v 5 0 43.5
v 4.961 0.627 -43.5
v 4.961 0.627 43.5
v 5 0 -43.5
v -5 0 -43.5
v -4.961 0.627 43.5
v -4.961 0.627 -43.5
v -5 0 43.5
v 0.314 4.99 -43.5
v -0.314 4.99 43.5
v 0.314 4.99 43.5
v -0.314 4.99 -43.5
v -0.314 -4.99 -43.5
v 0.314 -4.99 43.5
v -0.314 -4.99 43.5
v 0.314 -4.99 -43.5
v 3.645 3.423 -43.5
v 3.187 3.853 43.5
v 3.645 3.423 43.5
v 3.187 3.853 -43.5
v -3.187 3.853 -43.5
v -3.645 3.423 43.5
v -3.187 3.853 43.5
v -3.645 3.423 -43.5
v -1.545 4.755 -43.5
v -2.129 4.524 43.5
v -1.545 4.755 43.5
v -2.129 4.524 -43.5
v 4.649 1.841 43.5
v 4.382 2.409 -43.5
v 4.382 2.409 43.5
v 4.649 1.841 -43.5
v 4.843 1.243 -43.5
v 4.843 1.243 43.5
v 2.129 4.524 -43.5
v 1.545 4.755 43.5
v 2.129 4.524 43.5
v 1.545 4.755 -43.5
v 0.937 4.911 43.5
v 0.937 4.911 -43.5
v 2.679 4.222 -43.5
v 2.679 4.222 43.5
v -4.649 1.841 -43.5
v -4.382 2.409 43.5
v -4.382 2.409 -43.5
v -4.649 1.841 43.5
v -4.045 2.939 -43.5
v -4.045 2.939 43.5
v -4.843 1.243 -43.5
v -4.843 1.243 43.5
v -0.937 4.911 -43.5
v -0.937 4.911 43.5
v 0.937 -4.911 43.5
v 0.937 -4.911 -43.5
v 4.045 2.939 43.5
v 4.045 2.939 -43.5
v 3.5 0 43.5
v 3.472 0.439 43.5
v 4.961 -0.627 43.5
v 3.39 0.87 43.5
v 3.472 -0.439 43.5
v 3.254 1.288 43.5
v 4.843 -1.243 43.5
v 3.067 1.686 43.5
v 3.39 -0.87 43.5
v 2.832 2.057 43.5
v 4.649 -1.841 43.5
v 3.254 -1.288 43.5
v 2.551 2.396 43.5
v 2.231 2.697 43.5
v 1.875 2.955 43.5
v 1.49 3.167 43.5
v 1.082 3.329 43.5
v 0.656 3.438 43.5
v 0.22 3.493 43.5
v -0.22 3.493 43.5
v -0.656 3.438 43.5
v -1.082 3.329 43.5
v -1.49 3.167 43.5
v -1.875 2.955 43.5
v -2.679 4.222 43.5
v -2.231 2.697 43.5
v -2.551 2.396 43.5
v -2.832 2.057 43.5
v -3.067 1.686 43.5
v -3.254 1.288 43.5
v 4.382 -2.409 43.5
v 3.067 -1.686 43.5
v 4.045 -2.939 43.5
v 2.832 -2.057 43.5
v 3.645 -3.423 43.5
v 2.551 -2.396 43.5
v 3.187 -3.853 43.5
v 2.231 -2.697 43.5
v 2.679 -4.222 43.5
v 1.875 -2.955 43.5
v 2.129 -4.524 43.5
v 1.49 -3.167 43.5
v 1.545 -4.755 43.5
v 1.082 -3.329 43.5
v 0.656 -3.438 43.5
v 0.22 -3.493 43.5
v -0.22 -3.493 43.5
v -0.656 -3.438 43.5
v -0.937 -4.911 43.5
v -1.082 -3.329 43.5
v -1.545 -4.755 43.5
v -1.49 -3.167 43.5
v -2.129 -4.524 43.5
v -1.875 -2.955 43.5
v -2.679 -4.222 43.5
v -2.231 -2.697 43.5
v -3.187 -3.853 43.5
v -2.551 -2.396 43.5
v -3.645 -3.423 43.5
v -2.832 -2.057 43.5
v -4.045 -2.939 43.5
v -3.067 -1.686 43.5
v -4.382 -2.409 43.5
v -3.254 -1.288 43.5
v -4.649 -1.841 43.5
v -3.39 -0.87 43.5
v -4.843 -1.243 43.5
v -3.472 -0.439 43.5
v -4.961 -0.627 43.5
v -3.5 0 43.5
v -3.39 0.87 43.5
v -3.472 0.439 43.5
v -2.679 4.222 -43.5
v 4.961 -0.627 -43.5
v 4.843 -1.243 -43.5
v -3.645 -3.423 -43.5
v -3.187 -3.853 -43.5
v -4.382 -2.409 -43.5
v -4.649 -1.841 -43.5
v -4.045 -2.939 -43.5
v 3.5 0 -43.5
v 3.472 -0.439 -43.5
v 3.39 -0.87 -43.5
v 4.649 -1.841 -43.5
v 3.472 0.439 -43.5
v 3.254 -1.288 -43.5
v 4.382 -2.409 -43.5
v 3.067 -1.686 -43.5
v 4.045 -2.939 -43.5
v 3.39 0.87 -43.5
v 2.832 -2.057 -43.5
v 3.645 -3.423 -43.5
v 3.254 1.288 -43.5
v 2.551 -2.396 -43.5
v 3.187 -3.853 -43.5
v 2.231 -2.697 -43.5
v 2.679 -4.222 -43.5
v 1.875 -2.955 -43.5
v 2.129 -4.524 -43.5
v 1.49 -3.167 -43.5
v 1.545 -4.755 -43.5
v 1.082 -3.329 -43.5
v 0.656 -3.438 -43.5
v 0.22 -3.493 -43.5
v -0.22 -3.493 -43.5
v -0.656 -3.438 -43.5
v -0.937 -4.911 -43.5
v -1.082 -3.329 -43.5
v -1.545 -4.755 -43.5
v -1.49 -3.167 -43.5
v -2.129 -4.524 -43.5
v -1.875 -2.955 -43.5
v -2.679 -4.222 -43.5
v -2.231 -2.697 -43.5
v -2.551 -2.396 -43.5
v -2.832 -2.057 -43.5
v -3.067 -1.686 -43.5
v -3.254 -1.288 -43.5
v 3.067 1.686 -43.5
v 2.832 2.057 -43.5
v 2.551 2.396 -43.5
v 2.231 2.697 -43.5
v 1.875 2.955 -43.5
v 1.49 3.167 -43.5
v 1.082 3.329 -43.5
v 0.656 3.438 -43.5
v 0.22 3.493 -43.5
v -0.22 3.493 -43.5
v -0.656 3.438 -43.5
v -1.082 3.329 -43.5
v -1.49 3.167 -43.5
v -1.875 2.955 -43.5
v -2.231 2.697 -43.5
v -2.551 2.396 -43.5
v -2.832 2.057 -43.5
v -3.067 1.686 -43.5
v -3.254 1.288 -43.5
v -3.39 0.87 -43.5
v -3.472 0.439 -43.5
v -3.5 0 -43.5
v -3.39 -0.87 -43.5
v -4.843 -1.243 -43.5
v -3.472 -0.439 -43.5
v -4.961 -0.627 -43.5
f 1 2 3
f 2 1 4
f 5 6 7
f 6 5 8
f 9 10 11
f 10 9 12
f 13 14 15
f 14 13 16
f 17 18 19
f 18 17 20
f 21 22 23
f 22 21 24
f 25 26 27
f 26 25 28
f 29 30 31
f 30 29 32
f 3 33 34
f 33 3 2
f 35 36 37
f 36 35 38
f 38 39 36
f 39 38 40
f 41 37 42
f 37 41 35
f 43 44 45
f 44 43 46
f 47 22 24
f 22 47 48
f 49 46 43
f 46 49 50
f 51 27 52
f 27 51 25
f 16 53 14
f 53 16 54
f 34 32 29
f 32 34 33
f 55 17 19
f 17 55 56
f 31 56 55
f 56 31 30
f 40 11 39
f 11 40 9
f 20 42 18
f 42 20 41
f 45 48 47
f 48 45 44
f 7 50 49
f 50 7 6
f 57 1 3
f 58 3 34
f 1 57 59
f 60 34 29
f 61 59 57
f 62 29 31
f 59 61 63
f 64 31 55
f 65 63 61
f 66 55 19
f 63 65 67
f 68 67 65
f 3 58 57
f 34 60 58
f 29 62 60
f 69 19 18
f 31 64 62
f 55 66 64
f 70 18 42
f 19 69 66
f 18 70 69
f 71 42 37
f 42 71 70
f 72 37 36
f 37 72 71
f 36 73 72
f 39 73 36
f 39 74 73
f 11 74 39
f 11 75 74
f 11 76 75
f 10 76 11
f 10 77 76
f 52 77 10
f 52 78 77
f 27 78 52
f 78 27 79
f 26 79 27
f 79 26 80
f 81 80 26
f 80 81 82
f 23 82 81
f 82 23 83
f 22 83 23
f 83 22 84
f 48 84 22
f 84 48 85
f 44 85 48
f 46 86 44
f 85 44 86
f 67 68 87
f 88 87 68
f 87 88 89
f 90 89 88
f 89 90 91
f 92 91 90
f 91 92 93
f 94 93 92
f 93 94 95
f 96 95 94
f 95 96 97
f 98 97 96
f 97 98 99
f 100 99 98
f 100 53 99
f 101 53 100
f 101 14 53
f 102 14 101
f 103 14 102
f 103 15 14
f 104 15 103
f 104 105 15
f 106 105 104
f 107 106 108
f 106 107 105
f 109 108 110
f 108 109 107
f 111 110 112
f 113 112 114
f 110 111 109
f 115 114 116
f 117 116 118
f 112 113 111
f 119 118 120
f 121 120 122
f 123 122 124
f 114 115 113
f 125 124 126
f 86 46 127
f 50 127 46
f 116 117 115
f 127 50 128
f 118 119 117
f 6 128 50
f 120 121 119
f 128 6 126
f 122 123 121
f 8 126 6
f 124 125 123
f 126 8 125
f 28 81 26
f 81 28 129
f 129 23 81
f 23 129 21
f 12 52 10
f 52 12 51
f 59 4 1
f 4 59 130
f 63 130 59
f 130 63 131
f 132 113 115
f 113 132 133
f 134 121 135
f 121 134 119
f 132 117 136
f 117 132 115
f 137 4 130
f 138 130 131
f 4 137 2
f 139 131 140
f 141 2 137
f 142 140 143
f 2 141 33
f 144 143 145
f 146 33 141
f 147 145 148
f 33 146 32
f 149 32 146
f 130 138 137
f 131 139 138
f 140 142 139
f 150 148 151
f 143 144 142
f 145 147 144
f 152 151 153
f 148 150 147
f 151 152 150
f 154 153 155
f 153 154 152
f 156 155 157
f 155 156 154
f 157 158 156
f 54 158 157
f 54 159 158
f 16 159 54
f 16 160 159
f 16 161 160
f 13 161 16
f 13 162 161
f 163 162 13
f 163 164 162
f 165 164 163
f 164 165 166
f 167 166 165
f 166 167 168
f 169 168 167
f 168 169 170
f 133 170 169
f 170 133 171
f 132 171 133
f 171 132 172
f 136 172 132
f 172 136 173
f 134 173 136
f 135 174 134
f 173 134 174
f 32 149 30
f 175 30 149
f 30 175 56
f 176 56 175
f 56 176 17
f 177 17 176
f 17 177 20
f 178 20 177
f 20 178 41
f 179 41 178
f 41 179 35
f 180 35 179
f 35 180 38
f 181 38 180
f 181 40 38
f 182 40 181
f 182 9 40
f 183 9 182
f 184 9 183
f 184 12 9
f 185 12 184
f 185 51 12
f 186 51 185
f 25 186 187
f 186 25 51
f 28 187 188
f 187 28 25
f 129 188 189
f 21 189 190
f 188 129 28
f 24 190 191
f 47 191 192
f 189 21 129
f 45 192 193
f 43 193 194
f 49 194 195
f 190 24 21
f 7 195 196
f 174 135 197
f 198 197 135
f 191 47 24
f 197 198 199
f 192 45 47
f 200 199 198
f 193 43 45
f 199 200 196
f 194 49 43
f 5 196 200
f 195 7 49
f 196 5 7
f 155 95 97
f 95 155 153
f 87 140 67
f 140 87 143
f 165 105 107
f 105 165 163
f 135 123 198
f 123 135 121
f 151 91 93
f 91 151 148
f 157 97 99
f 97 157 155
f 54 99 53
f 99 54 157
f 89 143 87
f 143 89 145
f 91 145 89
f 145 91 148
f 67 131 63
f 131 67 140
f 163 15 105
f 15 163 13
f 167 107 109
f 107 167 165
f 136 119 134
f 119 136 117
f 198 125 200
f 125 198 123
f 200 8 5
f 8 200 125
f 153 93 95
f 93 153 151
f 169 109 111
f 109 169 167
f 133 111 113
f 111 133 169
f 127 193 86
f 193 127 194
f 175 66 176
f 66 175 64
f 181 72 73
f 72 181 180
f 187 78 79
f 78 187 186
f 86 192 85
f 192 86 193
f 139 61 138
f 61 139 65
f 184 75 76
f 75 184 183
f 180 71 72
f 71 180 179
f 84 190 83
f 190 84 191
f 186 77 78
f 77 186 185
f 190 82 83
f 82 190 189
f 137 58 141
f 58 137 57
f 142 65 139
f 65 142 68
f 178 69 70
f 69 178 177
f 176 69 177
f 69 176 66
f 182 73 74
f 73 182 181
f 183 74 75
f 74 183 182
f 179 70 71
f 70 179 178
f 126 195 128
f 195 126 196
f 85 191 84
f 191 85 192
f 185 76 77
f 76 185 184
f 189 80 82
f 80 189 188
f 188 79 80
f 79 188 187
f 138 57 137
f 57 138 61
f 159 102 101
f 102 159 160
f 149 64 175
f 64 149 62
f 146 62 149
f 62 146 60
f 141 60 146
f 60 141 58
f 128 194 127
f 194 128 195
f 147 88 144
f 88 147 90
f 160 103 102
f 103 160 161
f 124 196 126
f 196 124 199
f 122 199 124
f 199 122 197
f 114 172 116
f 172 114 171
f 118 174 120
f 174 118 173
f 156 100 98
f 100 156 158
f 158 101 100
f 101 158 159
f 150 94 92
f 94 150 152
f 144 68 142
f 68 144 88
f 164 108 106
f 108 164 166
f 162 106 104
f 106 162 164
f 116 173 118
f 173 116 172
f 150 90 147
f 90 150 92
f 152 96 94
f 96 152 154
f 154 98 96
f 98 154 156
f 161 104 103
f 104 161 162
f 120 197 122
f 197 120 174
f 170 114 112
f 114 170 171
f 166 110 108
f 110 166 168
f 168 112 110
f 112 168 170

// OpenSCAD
$fn = 50;


difference() {
	union() {
		translate(v = [0, 0, -43.5000000000]) {
			cylinder(h = 87, r = 5.0000000000);
		}
	}
	union() {
		translate(v = [0, 0, -100.0000000000]) {
			cylinder(h = 200, r = 3.5000000000);
		}
	}
}
